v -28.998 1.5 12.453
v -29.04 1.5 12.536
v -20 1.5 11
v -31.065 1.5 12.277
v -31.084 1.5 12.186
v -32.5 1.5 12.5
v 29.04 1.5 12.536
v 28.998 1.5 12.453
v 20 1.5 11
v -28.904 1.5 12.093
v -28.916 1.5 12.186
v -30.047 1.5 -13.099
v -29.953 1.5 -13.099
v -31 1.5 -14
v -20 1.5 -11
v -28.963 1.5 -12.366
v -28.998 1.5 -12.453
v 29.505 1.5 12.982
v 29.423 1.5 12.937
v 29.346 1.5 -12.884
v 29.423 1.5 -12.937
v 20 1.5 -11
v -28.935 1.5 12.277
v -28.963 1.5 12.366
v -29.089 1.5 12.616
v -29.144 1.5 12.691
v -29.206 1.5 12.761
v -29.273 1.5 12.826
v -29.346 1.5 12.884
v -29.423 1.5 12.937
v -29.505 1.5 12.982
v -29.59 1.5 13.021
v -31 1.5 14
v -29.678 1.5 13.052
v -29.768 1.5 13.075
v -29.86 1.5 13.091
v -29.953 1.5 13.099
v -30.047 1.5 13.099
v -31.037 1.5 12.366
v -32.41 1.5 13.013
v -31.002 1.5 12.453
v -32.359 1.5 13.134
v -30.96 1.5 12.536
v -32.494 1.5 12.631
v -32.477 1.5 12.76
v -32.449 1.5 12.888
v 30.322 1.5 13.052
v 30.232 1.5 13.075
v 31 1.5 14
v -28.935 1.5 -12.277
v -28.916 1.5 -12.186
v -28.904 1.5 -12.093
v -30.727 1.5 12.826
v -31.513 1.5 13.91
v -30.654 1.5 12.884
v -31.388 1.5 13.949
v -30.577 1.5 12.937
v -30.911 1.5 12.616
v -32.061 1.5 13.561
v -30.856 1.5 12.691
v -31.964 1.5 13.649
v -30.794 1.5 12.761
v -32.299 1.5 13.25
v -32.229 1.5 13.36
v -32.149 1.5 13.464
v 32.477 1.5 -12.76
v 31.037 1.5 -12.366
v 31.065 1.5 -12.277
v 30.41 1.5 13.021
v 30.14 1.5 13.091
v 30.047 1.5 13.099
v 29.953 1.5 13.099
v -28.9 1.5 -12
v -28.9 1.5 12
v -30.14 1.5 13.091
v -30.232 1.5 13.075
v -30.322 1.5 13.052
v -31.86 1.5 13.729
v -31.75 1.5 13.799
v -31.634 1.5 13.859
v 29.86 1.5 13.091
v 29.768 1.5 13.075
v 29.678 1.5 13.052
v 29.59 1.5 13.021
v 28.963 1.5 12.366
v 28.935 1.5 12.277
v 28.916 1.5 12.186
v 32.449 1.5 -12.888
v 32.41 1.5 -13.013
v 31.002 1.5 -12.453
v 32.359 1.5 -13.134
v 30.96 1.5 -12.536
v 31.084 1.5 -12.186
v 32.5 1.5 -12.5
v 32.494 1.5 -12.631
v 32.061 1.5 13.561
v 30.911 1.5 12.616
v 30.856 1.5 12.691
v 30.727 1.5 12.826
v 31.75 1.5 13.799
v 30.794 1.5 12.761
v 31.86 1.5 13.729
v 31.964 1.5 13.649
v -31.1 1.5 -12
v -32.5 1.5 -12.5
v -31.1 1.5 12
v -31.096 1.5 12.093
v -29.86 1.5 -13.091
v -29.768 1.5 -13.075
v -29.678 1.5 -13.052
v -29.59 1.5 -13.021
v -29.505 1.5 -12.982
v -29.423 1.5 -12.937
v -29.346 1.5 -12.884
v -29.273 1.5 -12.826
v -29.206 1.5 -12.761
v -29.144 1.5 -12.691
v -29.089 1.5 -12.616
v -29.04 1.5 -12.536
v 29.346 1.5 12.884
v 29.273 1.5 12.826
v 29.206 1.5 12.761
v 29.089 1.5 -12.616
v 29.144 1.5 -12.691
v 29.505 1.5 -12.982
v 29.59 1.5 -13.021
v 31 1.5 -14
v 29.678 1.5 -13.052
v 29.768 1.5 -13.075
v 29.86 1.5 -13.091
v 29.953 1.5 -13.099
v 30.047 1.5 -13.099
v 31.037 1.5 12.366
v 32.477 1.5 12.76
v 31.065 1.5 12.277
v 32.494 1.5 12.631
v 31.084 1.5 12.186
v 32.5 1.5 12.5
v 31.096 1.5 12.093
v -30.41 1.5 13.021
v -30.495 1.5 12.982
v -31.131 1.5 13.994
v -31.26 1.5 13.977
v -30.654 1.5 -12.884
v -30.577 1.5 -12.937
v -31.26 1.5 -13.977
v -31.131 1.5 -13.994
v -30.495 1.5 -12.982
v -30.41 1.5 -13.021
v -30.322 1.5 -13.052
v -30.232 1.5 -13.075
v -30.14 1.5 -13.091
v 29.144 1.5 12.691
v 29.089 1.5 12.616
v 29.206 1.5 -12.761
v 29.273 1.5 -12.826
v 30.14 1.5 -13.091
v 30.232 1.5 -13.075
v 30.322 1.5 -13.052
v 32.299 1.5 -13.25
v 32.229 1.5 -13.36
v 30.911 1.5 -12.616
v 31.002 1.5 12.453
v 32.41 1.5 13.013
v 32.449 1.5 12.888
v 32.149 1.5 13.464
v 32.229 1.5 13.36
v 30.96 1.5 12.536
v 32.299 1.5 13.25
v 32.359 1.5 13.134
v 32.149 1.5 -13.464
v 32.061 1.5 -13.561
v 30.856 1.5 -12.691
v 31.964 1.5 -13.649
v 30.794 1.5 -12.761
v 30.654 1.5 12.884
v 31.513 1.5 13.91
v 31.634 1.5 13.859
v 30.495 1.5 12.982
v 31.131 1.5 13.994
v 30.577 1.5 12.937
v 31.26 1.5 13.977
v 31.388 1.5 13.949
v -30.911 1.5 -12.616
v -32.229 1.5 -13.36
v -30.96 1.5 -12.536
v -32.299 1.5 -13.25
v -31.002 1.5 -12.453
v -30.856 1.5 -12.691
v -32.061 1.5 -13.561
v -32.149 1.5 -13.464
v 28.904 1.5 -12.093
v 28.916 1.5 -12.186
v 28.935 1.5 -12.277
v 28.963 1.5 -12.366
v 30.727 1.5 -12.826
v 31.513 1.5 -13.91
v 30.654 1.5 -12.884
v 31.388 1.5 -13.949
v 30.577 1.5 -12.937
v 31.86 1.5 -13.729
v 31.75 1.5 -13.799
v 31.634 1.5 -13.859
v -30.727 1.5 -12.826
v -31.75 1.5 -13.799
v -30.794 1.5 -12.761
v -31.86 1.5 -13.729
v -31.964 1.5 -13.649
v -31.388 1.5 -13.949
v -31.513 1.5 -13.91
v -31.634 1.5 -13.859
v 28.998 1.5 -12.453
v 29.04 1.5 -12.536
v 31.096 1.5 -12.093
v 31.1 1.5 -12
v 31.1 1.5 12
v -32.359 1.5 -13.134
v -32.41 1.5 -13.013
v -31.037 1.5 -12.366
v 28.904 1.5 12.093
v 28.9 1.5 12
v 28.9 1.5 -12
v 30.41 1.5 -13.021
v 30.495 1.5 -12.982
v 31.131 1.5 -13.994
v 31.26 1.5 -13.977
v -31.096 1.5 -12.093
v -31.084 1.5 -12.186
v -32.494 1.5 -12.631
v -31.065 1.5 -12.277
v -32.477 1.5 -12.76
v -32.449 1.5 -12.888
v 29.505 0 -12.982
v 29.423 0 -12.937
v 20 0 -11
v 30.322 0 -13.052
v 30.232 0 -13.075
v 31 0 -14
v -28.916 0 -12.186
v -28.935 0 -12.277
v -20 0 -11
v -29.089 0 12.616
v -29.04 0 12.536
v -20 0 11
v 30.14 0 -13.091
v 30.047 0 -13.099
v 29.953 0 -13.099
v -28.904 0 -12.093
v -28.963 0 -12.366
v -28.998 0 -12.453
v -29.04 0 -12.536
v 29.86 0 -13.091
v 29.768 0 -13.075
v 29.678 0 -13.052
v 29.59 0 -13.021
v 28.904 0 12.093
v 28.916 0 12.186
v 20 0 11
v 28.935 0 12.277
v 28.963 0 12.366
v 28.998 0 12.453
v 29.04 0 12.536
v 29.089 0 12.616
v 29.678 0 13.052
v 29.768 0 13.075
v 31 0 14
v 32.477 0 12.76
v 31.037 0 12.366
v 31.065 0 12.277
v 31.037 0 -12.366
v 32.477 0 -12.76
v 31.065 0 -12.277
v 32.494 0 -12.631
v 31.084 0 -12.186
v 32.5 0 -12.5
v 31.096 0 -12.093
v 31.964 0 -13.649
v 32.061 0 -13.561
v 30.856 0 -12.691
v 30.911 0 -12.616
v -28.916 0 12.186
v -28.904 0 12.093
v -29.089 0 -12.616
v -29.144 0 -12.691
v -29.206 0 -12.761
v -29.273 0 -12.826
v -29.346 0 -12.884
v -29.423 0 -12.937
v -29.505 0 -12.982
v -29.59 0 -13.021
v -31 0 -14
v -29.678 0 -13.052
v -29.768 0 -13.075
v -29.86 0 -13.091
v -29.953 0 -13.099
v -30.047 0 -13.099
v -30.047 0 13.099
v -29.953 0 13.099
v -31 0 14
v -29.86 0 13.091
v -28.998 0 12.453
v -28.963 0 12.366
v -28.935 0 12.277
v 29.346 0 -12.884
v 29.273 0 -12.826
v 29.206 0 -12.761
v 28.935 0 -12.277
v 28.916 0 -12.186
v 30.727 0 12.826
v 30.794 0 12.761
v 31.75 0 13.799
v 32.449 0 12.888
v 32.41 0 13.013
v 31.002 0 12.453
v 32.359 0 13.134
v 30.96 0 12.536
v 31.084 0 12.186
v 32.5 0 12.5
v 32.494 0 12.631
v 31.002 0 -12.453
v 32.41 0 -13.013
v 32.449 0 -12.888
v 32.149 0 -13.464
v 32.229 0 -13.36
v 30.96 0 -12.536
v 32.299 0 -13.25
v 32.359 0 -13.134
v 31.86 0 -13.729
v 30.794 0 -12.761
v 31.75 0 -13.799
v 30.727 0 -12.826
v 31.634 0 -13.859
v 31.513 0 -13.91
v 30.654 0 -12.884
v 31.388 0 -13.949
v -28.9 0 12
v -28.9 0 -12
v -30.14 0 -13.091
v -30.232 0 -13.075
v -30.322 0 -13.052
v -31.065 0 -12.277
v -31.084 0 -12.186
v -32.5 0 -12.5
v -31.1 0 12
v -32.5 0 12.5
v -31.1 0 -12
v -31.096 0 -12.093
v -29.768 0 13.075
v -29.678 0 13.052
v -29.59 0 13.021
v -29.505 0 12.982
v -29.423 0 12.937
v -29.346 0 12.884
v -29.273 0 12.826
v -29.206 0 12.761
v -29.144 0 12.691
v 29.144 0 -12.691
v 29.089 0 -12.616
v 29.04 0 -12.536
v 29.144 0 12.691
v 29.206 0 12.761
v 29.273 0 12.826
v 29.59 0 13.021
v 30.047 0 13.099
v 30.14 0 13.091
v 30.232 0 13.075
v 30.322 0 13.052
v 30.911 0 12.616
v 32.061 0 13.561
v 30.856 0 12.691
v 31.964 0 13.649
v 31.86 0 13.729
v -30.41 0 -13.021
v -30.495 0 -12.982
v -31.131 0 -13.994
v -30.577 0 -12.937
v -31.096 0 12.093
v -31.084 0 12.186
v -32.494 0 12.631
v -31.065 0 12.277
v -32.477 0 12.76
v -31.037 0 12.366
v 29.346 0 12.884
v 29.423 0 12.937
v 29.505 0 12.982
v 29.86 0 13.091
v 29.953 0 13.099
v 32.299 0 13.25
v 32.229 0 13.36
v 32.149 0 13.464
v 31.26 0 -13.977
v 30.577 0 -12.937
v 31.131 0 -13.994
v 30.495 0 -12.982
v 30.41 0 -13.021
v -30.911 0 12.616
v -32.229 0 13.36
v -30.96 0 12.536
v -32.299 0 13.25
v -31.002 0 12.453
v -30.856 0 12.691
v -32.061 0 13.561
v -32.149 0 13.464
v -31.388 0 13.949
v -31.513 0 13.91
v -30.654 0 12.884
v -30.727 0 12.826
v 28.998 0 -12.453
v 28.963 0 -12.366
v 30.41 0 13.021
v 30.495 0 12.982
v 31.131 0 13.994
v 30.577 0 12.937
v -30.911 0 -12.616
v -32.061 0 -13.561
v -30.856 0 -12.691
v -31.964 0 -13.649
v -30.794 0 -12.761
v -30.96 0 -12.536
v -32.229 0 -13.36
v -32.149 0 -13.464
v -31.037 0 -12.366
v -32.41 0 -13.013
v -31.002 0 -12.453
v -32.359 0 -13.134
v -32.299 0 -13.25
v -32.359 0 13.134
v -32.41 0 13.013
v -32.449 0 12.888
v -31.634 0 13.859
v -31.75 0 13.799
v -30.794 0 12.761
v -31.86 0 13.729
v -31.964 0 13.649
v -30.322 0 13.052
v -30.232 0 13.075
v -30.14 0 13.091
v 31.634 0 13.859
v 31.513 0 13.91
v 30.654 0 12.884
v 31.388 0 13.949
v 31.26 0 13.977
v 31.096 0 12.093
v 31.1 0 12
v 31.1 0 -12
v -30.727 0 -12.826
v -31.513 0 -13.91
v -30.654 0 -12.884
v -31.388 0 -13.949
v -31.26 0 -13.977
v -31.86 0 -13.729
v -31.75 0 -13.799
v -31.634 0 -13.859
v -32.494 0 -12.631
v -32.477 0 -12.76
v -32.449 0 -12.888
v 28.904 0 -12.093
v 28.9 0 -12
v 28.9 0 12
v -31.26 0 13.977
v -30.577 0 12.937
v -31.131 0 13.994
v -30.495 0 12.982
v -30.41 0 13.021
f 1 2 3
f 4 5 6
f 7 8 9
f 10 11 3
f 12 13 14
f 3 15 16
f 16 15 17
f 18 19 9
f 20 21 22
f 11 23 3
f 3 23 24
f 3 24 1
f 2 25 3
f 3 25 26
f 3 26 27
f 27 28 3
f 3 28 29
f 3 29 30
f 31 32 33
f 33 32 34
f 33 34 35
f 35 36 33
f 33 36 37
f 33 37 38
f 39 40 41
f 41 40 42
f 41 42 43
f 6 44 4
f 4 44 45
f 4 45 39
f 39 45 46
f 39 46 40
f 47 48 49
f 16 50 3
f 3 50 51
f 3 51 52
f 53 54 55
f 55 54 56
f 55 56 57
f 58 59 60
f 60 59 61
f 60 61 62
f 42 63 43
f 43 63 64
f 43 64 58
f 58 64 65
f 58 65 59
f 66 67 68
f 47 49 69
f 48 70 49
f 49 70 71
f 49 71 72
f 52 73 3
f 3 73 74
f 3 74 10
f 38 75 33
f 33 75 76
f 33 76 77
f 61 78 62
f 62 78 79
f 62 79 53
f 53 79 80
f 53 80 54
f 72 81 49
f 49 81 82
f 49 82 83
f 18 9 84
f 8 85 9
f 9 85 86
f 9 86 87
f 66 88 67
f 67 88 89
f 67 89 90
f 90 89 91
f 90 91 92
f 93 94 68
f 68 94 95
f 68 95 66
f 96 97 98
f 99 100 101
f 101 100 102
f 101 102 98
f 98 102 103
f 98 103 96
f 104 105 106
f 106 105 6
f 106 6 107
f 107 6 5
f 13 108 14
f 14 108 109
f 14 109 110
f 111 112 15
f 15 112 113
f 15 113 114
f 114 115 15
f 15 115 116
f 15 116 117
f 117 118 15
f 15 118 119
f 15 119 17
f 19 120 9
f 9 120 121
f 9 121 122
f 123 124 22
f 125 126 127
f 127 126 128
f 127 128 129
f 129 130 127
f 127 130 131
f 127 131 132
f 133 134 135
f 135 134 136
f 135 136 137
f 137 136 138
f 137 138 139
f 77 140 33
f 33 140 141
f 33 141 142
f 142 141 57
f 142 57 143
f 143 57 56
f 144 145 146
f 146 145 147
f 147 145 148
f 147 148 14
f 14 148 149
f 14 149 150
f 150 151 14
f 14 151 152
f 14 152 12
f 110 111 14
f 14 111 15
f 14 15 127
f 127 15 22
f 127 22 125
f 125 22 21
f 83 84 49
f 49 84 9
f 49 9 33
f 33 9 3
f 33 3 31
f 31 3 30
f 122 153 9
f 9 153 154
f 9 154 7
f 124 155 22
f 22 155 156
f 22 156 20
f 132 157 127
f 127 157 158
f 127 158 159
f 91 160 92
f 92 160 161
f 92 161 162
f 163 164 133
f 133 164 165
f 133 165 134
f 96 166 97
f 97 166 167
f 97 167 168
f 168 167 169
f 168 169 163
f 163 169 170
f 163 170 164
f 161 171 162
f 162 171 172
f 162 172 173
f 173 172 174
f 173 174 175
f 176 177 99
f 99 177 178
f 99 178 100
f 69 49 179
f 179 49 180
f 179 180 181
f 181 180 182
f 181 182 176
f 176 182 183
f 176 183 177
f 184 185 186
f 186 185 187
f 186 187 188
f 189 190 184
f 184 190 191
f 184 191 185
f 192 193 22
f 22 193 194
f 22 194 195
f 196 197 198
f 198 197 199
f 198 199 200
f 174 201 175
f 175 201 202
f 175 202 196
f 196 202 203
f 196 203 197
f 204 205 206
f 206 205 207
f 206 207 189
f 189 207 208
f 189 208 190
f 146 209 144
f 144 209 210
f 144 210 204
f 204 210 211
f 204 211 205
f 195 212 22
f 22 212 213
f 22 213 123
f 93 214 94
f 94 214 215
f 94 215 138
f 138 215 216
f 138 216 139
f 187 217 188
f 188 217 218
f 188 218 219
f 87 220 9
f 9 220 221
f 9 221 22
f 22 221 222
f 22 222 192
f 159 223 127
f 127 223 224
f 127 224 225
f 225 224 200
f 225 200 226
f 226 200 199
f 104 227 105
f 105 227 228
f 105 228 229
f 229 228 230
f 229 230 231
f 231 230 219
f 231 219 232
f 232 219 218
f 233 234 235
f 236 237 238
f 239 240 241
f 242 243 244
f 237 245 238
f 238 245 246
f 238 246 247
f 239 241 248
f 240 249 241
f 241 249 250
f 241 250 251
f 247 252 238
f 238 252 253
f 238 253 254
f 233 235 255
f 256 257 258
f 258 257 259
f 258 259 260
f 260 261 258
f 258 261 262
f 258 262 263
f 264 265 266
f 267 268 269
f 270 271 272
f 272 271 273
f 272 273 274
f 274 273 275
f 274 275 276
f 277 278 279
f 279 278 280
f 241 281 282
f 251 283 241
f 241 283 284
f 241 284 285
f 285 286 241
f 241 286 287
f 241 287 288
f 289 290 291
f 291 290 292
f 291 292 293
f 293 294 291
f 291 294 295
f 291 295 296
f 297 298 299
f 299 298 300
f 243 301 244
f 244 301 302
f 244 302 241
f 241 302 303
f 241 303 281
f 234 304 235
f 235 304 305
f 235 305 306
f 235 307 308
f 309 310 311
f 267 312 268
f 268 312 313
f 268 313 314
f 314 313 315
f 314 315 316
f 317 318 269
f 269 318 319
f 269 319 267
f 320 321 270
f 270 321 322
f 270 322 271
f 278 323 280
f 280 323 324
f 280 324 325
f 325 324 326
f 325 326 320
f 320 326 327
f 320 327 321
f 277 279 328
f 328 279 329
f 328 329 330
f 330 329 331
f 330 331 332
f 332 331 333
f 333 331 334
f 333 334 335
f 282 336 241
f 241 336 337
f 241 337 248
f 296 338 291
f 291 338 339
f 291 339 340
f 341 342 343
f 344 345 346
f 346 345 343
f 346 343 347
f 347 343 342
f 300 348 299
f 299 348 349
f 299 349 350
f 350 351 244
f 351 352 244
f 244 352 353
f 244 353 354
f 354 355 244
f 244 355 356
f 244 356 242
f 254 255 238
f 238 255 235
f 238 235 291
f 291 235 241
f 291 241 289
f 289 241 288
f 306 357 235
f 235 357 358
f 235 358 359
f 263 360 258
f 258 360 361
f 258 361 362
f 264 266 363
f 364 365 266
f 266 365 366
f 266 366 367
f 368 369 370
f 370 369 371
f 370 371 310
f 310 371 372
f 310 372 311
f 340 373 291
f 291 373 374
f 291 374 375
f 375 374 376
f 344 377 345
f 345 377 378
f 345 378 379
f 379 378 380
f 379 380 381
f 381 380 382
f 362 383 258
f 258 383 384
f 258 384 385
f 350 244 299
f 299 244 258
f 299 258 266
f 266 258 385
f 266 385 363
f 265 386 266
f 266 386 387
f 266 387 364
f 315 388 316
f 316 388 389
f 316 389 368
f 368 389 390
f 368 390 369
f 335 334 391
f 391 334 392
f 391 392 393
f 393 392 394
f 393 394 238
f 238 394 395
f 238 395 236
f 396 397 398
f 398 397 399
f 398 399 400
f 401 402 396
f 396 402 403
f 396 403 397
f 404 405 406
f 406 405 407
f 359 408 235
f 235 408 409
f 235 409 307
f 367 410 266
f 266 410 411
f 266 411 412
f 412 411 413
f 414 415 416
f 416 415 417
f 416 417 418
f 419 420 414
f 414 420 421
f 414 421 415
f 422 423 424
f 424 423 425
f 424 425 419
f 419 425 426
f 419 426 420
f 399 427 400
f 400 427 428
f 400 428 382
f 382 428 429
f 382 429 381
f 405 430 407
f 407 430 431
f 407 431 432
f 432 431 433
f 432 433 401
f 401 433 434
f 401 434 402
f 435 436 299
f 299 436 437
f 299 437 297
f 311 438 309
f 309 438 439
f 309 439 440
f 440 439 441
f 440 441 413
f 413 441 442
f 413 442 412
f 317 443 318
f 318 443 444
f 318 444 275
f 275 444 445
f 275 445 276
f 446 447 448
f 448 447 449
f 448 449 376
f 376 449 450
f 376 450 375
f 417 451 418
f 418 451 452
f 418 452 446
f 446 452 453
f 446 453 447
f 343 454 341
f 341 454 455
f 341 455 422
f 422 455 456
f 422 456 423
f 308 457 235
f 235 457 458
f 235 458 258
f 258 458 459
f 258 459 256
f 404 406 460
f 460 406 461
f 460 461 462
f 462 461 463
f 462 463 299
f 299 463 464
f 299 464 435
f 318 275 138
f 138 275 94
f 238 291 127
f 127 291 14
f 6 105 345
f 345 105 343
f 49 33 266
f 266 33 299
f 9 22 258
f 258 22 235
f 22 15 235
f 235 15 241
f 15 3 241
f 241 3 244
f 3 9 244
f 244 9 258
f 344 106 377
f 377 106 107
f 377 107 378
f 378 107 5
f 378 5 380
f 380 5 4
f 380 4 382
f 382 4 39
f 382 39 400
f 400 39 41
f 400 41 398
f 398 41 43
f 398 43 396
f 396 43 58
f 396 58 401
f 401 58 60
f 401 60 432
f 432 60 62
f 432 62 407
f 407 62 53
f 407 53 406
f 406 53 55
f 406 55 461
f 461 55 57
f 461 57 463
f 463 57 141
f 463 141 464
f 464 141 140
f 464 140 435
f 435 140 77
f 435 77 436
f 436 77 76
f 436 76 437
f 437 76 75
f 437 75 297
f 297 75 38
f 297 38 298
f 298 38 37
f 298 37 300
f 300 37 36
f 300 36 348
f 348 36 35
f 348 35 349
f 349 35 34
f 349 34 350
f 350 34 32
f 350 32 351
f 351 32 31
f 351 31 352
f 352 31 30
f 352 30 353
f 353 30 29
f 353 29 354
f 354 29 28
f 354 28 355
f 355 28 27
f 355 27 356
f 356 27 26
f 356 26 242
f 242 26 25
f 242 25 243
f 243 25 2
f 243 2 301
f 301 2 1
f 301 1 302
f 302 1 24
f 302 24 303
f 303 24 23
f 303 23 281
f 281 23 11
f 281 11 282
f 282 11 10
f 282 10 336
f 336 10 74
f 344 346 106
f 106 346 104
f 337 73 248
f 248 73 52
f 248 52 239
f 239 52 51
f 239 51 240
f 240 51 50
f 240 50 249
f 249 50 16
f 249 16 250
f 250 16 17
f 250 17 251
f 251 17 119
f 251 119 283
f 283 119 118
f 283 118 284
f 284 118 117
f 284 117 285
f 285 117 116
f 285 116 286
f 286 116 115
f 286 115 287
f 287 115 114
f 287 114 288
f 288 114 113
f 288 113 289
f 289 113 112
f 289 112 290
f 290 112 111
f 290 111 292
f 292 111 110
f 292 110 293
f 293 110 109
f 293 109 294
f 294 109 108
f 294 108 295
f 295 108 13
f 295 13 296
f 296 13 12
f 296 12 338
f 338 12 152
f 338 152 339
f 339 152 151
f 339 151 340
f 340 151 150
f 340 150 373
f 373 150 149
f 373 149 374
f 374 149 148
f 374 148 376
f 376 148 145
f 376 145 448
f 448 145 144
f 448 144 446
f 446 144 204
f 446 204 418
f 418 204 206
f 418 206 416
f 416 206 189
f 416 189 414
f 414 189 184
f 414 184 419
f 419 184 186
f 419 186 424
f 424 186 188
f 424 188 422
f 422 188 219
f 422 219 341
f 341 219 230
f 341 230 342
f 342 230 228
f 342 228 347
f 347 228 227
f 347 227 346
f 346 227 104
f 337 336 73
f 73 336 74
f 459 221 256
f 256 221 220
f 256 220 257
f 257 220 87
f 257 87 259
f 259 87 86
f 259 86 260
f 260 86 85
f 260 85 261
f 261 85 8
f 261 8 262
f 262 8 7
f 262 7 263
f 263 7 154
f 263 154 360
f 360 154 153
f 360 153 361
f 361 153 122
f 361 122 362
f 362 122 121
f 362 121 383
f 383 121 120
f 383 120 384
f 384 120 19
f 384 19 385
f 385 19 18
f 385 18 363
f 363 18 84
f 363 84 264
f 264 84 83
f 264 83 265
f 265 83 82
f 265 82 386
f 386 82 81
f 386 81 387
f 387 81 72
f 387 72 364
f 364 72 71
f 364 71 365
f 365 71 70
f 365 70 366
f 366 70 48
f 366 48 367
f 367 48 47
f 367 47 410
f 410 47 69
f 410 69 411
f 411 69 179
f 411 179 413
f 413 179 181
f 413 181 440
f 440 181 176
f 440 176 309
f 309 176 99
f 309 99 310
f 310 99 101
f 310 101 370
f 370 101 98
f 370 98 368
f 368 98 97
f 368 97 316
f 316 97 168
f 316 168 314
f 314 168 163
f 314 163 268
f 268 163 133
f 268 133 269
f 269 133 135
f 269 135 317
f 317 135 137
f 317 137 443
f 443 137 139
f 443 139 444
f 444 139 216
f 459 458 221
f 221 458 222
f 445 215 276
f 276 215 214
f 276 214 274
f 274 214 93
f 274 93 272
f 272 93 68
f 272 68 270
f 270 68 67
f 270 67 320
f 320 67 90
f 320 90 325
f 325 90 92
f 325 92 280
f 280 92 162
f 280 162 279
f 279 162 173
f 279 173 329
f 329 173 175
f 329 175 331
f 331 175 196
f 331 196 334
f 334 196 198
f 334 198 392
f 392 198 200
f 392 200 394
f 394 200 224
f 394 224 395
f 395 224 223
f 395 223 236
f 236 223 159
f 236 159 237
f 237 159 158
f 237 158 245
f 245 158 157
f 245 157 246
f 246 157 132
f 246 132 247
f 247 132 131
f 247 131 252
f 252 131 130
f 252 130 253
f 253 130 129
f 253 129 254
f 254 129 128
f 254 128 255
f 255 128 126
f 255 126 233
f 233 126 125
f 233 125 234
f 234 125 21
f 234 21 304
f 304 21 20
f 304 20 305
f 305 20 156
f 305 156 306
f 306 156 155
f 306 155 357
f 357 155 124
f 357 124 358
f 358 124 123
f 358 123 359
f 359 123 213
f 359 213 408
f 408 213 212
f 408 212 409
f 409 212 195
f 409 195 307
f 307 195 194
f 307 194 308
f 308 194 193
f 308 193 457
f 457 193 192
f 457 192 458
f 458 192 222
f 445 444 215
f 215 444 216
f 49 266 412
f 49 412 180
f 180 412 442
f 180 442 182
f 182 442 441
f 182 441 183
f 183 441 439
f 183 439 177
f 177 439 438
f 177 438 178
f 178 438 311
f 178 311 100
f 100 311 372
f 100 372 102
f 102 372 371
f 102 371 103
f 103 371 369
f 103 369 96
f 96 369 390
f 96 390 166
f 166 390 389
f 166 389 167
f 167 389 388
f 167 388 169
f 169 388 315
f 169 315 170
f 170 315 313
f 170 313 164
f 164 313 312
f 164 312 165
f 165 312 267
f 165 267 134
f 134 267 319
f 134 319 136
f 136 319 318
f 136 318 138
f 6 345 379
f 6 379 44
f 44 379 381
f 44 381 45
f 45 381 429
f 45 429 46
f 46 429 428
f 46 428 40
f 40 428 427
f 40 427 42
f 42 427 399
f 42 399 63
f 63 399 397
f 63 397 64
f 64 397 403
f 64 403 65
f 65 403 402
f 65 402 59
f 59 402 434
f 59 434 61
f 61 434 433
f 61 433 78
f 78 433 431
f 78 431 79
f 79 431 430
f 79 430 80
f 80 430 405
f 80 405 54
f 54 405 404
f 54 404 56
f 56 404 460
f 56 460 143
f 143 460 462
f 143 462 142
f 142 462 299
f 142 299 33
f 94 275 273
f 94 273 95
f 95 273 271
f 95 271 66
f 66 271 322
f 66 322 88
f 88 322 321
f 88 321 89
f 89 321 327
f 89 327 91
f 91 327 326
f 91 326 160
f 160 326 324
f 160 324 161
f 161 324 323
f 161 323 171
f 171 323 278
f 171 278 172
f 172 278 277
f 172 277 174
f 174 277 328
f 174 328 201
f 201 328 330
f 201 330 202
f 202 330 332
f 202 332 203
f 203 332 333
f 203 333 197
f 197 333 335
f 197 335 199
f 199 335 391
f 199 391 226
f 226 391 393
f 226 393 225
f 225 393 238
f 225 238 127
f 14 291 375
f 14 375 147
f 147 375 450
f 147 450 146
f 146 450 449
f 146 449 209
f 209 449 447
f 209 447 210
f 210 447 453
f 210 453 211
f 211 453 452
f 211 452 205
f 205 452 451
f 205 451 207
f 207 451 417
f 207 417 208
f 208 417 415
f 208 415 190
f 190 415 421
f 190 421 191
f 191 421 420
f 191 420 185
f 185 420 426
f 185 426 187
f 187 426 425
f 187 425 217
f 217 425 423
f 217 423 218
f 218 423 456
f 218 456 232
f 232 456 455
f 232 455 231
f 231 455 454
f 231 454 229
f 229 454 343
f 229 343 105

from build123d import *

# Parameters (mm, degrees)
SKETCH1_W           = 65
SKETCH1_H           = 28
SKETCH1_W_2         = 40
SKETCH1_H_2         = 22
BOSS_EXTRUDE1_DEPTH = 1.5
CUT_EXTRUDE1_DEPTH  = 2.5
FILLET2_R           = 1.5


with BuildPart() as part:
    # Sketch1 → Boss-Extrude1 (new body)
    with BuildSketch(Plane(origin=(0, 0, 0), x_dir=(1, 0, 0), z_dir=(0, 1, 0))):
        Rectangle(SKETCH1_W, SKETCH1_H)
        Rectangle(SKETCH1_W_2, SKETCH1_H_2, mode=Mode.SUBTRACT)
    extrude(amount=BOSS_EXTRUDE1_DEPTH)

    # Sketch2 → Cut-Extrude1 (cut, through all)
    with BuildSketch(Plane(origin=(0, 1.5, 0), x_dir=(1, 0, 0), z_dir=(0, 1, 0))):
        with BuildLine():
            Line((-31.1, -12), (-31.1, 12))
            ThreePointArc((-31.1, 12), (-30, 13.1), (-28.9, 12))
            Line((-28.9, 12), (-28.9, -12))
            ThreePointArc((-28.9, -12), (-30, -13.1), (-31.1, -12))
        make_face()
        with BuildLine():
            Line((31.1, -12), (31.1, 12))
            ThreePointArc((31.1, 12), (30, 13.1), (28.9, 12))
            Line((28.9, 12), (28.9, -12))
            ThreePointArc((28.9, -12), (30, -13.1), (31.1, -12))
        make_face()
    extrude(amount=-CUT_EXTRUDE1_DEPTH, mode=Mode.SUBTRACT)

    # Fillet2
    fillet2_edges = [part.edges().sort_by_distance(p)[0] for p in [
        (32.5, 0.75, 14),
        (-32.5, 0.75, 14),
        (-32.5, 0.75, -14),
        (32.5, 0.75, -14),
    ]]
    fillet(fillet2_edges, radius=FILLET2_R)


solid = part.part
